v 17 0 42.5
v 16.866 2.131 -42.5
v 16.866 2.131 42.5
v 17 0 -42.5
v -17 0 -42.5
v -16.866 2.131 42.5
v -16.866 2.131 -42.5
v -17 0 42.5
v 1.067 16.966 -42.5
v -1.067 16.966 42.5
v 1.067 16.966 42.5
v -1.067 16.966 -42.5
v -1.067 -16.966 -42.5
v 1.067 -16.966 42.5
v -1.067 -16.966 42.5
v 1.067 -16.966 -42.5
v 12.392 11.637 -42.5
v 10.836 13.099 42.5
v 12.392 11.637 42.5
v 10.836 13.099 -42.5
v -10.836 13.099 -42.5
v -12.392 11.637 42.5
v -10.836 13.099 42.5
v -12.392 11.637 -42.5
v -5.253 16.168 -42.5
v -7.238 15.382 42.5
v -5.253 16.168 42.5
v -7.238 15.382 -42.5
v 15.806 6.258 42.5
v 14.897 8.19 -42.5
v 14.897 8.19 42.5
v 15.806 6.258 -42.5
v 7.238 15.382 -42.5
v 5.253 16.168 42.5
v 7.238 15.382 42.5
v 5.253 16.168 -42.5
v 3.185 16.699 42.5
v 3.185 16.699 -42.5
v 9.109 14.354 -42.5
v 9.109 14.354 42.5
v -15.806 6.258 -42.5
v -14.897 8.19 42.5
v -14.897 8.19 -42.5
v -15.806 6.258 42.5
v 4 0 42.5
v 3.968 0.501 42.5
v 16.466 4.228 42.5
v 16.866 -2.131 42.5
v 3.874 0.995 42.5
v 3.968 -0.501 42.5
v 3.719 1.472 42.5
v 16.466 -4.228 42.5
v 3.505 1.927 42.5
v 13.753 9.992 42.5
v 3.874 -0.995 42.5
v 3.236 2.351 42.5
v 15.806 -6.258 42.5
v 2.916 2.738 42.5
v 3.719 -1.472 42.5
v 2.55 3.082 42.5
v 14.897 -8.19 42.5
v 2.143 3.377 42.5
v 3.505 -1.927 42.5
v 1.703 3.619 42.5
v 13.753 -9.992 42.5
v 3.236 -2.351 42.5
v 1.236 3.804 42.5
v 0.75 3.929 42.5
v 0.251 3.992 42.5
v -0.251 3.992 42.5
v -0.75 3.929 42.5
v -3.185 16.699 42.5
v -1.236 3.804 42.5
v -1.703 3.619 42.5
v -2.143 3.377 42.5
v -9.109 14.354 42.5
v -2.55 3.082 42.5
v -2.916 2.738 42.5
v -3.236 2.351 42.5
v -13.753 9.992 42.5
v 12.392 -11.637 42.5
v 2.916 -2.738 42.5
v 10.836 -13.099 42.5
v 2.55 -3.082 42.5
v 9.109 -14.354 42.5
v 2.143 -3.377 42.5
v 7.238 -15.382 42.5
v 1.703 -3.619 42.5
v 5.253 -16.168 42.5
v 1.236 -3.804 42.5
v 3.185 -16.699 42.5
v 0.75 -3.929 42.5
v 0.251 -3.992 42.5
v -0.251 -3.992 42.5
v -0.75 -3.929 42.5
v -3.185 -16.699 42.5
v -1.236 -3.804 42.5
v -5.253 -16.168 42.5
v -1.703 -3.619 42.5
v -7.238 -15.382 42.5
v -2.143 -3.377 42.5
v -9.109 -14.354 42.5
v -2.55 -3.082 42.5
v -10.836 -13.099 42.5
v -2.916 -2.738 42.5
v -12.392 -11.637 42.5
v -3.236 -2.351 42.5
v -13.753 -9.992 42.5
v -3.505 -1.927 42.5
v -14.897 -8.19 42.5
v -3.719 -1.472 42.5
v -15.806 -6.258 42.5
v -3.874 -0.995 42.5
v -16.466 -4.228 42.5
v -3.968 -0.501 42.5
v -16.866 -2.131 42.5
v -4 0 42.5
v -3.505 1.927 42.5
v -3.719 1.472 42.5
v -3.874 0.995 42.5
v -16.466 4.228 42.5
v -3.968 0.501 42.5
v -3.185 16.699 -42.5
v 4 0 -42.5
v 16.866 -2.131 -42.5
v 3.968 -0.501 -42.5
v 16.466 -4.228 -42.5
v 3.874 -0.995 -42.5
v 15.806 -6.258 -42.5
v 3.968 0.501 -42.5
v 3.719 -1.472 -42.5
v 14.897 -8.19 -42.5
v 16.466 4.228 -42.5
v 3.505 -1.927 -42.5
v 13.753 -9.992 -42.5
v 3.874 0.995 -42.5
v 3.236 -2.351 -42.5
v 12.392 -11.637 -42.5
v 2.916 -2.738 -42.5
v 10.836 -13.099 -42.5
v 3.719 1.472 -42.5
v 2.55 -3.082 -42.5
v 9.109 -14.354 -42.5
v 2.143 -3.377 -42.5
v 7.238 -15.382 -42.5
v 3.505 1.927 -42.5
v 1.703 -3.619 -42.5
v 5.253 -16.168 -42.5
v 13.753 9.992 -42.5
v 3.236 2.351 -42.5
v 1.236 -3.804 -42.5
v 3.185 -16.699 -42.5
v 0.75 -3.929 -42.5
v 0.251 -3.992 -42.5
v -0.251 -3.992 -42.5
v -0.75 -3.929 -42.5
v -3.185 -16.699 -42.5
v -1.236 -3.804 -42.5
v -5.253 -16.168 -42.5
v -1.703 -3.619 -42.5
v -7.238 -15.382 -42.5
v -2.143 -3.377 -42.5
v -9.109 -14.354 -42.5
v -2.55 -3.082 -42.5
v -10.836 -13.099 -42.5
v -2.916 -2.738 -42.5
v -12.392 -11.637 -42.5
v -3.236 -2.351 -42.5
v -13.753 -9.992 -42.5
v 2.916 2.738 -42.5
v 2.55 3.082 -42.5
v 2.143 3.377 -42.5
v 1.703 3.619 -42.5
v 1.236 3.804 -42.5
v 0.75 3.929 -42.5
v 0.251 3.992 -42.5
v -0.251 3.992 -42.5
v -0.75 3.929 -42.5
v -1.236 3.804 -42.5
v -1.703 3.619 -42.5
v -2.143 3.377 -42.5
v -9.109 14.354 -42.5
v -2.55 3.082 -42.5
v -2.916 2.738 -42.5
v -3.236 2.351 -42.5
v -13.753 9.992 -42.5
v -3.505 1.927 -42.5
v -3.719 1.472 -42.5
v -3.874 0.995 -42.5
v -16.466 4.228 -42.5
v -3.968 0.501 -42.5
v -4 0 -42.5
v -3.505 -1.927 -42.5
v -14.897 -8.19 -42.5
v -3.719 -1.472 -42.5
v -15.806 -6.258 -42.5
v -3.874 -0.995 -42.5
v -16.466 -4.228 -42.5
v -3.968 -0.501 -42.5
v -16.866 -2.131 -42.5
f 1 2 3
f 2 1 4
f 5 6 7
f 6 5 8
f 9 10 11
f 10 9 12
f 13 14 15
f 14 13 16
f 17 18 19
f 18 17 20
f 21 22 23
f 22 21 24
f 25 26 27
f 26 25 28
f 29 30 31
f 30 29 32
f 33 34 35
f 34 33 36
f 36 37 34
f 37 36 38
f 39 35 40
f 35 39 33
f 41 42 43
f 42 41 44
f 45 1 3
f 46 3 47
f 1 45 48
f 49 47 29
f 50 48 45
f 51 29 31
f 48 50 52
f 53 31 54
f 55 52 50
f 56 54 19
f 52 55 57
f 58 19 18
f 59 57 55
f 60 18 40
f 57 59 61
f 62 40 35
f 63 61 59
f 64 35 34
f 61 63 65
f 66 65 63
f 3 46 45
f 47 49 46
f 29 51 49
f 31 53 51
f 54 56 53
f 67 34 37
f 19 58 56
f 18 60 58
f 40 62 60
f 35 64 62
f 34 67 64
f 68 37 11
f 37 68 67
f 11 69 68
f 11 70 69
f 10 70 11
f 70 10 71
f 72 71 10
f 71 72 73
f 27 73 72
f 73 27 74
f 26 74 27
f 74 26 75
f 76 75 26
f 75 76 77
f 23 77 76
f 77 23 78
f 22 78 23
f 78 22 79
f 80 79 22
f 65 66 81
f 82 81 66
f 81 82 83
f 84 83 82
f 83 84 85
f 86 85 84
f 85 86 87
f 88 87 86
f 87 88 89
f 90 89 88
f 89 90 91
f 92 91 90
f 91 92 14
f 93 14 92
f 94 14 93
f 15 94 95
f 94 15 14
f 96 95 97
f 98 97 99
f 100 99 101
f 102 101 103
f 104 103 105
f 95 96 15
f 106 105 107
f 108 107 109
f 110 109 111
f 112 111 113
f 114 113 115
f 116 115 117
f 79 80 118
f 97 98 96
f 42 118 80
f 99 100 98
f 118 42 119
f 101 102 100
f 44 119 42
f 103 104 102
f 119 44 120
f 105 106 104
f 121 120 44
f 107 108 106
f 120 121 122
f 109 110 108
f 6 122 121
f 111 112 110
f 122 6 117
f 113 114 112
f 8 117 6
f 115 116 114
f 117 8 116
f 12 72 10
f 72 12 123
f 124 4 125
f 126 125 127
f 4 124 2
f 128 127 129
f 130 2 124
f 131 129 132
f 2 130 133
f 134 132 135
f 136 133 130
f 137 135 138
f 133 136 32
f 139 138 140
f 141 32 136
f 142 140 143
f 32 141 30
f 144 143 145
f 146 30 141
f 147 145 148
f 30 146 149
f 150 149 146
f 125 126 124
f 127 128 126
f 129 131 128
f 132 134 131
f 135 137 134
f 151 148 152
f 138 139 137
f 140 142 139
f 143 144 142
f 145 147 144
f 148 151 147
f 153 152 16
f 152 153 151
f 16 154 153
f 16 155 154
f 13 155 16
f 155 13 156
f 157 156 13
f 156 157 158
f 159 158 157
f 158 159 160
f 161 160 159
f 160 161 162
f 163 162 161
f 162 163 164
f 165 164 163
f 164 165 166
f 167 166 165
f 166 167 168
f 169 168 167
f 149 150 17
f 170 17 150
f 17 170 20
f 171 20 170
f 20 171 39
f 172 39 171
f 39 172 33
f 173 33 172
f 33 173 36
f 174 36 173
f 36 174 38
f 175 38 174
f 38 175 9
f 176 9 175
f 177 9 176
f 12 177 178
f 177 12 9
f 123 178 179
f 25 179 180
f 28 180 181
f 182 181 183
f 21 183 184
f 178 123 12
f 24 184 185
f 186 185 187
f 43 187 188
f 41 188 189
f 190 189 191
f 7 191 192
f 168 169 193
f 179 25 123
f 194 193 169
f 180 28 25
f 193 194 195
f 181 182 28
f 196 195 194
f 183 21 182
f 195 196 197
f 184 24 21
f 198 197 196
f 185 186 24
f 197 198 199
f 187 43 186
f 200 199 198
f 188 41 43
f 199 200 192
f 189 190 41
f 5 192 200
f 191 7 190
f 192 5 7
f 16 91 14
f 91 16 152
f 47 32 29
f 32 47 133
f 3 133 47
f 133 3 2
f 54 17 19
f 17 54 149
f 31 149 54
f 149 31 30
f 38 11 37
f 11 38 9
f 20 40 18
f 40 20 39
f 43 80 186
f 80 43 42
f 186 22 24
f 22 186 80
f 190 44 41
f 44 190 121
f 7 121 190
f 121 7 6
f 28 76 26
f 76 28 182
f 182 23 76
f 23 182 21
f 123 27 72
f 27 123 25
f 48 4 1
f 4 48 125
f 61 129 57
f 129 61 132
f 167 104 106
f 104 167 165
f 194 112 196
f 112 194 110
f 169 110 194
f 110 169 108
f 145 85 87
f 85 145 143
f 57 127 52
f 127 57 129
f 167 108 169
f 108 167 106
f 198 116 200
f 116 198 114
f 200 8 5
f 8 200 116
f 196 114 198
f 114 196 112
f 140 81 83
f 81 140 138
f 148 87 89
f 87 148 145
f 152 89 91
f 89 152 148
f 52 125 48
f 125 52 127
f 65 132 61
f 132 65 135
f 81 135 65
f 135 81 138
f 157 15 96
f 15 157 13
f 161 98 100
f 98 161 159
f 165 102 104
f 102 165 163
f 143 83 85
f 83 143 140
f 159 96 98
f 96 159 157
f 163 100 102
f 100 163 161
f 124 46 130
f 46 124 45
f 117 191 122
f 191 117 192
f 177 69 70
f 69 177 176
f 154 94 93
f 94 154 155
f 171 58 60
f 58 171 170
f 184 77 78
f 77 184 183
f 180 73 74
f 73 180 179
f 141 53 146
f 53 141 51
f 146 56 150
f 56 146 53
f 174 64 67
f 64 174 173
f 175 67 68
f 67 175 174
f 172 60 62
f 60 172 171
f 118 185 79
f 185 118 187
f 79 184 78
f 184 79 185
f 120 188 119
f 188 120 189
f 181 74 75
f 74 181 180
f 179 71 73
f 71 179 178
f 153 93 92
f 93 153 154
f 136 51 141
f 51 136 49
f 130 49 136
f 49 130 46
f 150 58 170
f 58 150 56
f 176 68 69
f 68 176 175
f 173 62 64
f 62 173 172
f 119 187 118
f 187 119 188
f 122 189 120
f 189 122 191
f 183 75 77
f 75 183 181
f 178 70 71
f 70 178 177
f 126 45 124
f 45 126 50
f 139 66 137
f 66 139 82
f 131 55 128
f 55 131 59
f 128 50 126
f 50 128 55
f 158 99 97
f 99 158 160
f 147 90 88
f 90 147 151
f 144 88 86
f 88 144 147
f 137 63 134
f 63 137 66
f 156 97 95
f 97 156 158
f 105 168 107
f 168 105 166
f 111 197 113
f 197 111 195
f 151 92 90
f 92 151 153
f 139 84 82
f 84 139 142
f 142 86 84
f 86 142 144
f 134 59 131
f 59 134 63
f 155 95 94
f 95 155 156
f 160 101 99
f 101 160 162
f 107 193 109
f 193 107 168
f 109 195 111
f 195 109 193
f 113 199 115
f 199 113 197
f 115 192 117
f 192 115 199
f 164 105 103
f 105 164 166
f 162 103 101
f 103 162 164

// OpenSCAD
$fn = 50;


difference() {
	union() {
		translate(v = [0, 0, -42.5000000000]) {
			cylinder(h = 85, r = 17.0000000000);
		}
	}
	union() {
		translate(v = [0, 0, -100.0000000000]) {
			cylinder(h = 200, r = 4);
		}
	}
}
